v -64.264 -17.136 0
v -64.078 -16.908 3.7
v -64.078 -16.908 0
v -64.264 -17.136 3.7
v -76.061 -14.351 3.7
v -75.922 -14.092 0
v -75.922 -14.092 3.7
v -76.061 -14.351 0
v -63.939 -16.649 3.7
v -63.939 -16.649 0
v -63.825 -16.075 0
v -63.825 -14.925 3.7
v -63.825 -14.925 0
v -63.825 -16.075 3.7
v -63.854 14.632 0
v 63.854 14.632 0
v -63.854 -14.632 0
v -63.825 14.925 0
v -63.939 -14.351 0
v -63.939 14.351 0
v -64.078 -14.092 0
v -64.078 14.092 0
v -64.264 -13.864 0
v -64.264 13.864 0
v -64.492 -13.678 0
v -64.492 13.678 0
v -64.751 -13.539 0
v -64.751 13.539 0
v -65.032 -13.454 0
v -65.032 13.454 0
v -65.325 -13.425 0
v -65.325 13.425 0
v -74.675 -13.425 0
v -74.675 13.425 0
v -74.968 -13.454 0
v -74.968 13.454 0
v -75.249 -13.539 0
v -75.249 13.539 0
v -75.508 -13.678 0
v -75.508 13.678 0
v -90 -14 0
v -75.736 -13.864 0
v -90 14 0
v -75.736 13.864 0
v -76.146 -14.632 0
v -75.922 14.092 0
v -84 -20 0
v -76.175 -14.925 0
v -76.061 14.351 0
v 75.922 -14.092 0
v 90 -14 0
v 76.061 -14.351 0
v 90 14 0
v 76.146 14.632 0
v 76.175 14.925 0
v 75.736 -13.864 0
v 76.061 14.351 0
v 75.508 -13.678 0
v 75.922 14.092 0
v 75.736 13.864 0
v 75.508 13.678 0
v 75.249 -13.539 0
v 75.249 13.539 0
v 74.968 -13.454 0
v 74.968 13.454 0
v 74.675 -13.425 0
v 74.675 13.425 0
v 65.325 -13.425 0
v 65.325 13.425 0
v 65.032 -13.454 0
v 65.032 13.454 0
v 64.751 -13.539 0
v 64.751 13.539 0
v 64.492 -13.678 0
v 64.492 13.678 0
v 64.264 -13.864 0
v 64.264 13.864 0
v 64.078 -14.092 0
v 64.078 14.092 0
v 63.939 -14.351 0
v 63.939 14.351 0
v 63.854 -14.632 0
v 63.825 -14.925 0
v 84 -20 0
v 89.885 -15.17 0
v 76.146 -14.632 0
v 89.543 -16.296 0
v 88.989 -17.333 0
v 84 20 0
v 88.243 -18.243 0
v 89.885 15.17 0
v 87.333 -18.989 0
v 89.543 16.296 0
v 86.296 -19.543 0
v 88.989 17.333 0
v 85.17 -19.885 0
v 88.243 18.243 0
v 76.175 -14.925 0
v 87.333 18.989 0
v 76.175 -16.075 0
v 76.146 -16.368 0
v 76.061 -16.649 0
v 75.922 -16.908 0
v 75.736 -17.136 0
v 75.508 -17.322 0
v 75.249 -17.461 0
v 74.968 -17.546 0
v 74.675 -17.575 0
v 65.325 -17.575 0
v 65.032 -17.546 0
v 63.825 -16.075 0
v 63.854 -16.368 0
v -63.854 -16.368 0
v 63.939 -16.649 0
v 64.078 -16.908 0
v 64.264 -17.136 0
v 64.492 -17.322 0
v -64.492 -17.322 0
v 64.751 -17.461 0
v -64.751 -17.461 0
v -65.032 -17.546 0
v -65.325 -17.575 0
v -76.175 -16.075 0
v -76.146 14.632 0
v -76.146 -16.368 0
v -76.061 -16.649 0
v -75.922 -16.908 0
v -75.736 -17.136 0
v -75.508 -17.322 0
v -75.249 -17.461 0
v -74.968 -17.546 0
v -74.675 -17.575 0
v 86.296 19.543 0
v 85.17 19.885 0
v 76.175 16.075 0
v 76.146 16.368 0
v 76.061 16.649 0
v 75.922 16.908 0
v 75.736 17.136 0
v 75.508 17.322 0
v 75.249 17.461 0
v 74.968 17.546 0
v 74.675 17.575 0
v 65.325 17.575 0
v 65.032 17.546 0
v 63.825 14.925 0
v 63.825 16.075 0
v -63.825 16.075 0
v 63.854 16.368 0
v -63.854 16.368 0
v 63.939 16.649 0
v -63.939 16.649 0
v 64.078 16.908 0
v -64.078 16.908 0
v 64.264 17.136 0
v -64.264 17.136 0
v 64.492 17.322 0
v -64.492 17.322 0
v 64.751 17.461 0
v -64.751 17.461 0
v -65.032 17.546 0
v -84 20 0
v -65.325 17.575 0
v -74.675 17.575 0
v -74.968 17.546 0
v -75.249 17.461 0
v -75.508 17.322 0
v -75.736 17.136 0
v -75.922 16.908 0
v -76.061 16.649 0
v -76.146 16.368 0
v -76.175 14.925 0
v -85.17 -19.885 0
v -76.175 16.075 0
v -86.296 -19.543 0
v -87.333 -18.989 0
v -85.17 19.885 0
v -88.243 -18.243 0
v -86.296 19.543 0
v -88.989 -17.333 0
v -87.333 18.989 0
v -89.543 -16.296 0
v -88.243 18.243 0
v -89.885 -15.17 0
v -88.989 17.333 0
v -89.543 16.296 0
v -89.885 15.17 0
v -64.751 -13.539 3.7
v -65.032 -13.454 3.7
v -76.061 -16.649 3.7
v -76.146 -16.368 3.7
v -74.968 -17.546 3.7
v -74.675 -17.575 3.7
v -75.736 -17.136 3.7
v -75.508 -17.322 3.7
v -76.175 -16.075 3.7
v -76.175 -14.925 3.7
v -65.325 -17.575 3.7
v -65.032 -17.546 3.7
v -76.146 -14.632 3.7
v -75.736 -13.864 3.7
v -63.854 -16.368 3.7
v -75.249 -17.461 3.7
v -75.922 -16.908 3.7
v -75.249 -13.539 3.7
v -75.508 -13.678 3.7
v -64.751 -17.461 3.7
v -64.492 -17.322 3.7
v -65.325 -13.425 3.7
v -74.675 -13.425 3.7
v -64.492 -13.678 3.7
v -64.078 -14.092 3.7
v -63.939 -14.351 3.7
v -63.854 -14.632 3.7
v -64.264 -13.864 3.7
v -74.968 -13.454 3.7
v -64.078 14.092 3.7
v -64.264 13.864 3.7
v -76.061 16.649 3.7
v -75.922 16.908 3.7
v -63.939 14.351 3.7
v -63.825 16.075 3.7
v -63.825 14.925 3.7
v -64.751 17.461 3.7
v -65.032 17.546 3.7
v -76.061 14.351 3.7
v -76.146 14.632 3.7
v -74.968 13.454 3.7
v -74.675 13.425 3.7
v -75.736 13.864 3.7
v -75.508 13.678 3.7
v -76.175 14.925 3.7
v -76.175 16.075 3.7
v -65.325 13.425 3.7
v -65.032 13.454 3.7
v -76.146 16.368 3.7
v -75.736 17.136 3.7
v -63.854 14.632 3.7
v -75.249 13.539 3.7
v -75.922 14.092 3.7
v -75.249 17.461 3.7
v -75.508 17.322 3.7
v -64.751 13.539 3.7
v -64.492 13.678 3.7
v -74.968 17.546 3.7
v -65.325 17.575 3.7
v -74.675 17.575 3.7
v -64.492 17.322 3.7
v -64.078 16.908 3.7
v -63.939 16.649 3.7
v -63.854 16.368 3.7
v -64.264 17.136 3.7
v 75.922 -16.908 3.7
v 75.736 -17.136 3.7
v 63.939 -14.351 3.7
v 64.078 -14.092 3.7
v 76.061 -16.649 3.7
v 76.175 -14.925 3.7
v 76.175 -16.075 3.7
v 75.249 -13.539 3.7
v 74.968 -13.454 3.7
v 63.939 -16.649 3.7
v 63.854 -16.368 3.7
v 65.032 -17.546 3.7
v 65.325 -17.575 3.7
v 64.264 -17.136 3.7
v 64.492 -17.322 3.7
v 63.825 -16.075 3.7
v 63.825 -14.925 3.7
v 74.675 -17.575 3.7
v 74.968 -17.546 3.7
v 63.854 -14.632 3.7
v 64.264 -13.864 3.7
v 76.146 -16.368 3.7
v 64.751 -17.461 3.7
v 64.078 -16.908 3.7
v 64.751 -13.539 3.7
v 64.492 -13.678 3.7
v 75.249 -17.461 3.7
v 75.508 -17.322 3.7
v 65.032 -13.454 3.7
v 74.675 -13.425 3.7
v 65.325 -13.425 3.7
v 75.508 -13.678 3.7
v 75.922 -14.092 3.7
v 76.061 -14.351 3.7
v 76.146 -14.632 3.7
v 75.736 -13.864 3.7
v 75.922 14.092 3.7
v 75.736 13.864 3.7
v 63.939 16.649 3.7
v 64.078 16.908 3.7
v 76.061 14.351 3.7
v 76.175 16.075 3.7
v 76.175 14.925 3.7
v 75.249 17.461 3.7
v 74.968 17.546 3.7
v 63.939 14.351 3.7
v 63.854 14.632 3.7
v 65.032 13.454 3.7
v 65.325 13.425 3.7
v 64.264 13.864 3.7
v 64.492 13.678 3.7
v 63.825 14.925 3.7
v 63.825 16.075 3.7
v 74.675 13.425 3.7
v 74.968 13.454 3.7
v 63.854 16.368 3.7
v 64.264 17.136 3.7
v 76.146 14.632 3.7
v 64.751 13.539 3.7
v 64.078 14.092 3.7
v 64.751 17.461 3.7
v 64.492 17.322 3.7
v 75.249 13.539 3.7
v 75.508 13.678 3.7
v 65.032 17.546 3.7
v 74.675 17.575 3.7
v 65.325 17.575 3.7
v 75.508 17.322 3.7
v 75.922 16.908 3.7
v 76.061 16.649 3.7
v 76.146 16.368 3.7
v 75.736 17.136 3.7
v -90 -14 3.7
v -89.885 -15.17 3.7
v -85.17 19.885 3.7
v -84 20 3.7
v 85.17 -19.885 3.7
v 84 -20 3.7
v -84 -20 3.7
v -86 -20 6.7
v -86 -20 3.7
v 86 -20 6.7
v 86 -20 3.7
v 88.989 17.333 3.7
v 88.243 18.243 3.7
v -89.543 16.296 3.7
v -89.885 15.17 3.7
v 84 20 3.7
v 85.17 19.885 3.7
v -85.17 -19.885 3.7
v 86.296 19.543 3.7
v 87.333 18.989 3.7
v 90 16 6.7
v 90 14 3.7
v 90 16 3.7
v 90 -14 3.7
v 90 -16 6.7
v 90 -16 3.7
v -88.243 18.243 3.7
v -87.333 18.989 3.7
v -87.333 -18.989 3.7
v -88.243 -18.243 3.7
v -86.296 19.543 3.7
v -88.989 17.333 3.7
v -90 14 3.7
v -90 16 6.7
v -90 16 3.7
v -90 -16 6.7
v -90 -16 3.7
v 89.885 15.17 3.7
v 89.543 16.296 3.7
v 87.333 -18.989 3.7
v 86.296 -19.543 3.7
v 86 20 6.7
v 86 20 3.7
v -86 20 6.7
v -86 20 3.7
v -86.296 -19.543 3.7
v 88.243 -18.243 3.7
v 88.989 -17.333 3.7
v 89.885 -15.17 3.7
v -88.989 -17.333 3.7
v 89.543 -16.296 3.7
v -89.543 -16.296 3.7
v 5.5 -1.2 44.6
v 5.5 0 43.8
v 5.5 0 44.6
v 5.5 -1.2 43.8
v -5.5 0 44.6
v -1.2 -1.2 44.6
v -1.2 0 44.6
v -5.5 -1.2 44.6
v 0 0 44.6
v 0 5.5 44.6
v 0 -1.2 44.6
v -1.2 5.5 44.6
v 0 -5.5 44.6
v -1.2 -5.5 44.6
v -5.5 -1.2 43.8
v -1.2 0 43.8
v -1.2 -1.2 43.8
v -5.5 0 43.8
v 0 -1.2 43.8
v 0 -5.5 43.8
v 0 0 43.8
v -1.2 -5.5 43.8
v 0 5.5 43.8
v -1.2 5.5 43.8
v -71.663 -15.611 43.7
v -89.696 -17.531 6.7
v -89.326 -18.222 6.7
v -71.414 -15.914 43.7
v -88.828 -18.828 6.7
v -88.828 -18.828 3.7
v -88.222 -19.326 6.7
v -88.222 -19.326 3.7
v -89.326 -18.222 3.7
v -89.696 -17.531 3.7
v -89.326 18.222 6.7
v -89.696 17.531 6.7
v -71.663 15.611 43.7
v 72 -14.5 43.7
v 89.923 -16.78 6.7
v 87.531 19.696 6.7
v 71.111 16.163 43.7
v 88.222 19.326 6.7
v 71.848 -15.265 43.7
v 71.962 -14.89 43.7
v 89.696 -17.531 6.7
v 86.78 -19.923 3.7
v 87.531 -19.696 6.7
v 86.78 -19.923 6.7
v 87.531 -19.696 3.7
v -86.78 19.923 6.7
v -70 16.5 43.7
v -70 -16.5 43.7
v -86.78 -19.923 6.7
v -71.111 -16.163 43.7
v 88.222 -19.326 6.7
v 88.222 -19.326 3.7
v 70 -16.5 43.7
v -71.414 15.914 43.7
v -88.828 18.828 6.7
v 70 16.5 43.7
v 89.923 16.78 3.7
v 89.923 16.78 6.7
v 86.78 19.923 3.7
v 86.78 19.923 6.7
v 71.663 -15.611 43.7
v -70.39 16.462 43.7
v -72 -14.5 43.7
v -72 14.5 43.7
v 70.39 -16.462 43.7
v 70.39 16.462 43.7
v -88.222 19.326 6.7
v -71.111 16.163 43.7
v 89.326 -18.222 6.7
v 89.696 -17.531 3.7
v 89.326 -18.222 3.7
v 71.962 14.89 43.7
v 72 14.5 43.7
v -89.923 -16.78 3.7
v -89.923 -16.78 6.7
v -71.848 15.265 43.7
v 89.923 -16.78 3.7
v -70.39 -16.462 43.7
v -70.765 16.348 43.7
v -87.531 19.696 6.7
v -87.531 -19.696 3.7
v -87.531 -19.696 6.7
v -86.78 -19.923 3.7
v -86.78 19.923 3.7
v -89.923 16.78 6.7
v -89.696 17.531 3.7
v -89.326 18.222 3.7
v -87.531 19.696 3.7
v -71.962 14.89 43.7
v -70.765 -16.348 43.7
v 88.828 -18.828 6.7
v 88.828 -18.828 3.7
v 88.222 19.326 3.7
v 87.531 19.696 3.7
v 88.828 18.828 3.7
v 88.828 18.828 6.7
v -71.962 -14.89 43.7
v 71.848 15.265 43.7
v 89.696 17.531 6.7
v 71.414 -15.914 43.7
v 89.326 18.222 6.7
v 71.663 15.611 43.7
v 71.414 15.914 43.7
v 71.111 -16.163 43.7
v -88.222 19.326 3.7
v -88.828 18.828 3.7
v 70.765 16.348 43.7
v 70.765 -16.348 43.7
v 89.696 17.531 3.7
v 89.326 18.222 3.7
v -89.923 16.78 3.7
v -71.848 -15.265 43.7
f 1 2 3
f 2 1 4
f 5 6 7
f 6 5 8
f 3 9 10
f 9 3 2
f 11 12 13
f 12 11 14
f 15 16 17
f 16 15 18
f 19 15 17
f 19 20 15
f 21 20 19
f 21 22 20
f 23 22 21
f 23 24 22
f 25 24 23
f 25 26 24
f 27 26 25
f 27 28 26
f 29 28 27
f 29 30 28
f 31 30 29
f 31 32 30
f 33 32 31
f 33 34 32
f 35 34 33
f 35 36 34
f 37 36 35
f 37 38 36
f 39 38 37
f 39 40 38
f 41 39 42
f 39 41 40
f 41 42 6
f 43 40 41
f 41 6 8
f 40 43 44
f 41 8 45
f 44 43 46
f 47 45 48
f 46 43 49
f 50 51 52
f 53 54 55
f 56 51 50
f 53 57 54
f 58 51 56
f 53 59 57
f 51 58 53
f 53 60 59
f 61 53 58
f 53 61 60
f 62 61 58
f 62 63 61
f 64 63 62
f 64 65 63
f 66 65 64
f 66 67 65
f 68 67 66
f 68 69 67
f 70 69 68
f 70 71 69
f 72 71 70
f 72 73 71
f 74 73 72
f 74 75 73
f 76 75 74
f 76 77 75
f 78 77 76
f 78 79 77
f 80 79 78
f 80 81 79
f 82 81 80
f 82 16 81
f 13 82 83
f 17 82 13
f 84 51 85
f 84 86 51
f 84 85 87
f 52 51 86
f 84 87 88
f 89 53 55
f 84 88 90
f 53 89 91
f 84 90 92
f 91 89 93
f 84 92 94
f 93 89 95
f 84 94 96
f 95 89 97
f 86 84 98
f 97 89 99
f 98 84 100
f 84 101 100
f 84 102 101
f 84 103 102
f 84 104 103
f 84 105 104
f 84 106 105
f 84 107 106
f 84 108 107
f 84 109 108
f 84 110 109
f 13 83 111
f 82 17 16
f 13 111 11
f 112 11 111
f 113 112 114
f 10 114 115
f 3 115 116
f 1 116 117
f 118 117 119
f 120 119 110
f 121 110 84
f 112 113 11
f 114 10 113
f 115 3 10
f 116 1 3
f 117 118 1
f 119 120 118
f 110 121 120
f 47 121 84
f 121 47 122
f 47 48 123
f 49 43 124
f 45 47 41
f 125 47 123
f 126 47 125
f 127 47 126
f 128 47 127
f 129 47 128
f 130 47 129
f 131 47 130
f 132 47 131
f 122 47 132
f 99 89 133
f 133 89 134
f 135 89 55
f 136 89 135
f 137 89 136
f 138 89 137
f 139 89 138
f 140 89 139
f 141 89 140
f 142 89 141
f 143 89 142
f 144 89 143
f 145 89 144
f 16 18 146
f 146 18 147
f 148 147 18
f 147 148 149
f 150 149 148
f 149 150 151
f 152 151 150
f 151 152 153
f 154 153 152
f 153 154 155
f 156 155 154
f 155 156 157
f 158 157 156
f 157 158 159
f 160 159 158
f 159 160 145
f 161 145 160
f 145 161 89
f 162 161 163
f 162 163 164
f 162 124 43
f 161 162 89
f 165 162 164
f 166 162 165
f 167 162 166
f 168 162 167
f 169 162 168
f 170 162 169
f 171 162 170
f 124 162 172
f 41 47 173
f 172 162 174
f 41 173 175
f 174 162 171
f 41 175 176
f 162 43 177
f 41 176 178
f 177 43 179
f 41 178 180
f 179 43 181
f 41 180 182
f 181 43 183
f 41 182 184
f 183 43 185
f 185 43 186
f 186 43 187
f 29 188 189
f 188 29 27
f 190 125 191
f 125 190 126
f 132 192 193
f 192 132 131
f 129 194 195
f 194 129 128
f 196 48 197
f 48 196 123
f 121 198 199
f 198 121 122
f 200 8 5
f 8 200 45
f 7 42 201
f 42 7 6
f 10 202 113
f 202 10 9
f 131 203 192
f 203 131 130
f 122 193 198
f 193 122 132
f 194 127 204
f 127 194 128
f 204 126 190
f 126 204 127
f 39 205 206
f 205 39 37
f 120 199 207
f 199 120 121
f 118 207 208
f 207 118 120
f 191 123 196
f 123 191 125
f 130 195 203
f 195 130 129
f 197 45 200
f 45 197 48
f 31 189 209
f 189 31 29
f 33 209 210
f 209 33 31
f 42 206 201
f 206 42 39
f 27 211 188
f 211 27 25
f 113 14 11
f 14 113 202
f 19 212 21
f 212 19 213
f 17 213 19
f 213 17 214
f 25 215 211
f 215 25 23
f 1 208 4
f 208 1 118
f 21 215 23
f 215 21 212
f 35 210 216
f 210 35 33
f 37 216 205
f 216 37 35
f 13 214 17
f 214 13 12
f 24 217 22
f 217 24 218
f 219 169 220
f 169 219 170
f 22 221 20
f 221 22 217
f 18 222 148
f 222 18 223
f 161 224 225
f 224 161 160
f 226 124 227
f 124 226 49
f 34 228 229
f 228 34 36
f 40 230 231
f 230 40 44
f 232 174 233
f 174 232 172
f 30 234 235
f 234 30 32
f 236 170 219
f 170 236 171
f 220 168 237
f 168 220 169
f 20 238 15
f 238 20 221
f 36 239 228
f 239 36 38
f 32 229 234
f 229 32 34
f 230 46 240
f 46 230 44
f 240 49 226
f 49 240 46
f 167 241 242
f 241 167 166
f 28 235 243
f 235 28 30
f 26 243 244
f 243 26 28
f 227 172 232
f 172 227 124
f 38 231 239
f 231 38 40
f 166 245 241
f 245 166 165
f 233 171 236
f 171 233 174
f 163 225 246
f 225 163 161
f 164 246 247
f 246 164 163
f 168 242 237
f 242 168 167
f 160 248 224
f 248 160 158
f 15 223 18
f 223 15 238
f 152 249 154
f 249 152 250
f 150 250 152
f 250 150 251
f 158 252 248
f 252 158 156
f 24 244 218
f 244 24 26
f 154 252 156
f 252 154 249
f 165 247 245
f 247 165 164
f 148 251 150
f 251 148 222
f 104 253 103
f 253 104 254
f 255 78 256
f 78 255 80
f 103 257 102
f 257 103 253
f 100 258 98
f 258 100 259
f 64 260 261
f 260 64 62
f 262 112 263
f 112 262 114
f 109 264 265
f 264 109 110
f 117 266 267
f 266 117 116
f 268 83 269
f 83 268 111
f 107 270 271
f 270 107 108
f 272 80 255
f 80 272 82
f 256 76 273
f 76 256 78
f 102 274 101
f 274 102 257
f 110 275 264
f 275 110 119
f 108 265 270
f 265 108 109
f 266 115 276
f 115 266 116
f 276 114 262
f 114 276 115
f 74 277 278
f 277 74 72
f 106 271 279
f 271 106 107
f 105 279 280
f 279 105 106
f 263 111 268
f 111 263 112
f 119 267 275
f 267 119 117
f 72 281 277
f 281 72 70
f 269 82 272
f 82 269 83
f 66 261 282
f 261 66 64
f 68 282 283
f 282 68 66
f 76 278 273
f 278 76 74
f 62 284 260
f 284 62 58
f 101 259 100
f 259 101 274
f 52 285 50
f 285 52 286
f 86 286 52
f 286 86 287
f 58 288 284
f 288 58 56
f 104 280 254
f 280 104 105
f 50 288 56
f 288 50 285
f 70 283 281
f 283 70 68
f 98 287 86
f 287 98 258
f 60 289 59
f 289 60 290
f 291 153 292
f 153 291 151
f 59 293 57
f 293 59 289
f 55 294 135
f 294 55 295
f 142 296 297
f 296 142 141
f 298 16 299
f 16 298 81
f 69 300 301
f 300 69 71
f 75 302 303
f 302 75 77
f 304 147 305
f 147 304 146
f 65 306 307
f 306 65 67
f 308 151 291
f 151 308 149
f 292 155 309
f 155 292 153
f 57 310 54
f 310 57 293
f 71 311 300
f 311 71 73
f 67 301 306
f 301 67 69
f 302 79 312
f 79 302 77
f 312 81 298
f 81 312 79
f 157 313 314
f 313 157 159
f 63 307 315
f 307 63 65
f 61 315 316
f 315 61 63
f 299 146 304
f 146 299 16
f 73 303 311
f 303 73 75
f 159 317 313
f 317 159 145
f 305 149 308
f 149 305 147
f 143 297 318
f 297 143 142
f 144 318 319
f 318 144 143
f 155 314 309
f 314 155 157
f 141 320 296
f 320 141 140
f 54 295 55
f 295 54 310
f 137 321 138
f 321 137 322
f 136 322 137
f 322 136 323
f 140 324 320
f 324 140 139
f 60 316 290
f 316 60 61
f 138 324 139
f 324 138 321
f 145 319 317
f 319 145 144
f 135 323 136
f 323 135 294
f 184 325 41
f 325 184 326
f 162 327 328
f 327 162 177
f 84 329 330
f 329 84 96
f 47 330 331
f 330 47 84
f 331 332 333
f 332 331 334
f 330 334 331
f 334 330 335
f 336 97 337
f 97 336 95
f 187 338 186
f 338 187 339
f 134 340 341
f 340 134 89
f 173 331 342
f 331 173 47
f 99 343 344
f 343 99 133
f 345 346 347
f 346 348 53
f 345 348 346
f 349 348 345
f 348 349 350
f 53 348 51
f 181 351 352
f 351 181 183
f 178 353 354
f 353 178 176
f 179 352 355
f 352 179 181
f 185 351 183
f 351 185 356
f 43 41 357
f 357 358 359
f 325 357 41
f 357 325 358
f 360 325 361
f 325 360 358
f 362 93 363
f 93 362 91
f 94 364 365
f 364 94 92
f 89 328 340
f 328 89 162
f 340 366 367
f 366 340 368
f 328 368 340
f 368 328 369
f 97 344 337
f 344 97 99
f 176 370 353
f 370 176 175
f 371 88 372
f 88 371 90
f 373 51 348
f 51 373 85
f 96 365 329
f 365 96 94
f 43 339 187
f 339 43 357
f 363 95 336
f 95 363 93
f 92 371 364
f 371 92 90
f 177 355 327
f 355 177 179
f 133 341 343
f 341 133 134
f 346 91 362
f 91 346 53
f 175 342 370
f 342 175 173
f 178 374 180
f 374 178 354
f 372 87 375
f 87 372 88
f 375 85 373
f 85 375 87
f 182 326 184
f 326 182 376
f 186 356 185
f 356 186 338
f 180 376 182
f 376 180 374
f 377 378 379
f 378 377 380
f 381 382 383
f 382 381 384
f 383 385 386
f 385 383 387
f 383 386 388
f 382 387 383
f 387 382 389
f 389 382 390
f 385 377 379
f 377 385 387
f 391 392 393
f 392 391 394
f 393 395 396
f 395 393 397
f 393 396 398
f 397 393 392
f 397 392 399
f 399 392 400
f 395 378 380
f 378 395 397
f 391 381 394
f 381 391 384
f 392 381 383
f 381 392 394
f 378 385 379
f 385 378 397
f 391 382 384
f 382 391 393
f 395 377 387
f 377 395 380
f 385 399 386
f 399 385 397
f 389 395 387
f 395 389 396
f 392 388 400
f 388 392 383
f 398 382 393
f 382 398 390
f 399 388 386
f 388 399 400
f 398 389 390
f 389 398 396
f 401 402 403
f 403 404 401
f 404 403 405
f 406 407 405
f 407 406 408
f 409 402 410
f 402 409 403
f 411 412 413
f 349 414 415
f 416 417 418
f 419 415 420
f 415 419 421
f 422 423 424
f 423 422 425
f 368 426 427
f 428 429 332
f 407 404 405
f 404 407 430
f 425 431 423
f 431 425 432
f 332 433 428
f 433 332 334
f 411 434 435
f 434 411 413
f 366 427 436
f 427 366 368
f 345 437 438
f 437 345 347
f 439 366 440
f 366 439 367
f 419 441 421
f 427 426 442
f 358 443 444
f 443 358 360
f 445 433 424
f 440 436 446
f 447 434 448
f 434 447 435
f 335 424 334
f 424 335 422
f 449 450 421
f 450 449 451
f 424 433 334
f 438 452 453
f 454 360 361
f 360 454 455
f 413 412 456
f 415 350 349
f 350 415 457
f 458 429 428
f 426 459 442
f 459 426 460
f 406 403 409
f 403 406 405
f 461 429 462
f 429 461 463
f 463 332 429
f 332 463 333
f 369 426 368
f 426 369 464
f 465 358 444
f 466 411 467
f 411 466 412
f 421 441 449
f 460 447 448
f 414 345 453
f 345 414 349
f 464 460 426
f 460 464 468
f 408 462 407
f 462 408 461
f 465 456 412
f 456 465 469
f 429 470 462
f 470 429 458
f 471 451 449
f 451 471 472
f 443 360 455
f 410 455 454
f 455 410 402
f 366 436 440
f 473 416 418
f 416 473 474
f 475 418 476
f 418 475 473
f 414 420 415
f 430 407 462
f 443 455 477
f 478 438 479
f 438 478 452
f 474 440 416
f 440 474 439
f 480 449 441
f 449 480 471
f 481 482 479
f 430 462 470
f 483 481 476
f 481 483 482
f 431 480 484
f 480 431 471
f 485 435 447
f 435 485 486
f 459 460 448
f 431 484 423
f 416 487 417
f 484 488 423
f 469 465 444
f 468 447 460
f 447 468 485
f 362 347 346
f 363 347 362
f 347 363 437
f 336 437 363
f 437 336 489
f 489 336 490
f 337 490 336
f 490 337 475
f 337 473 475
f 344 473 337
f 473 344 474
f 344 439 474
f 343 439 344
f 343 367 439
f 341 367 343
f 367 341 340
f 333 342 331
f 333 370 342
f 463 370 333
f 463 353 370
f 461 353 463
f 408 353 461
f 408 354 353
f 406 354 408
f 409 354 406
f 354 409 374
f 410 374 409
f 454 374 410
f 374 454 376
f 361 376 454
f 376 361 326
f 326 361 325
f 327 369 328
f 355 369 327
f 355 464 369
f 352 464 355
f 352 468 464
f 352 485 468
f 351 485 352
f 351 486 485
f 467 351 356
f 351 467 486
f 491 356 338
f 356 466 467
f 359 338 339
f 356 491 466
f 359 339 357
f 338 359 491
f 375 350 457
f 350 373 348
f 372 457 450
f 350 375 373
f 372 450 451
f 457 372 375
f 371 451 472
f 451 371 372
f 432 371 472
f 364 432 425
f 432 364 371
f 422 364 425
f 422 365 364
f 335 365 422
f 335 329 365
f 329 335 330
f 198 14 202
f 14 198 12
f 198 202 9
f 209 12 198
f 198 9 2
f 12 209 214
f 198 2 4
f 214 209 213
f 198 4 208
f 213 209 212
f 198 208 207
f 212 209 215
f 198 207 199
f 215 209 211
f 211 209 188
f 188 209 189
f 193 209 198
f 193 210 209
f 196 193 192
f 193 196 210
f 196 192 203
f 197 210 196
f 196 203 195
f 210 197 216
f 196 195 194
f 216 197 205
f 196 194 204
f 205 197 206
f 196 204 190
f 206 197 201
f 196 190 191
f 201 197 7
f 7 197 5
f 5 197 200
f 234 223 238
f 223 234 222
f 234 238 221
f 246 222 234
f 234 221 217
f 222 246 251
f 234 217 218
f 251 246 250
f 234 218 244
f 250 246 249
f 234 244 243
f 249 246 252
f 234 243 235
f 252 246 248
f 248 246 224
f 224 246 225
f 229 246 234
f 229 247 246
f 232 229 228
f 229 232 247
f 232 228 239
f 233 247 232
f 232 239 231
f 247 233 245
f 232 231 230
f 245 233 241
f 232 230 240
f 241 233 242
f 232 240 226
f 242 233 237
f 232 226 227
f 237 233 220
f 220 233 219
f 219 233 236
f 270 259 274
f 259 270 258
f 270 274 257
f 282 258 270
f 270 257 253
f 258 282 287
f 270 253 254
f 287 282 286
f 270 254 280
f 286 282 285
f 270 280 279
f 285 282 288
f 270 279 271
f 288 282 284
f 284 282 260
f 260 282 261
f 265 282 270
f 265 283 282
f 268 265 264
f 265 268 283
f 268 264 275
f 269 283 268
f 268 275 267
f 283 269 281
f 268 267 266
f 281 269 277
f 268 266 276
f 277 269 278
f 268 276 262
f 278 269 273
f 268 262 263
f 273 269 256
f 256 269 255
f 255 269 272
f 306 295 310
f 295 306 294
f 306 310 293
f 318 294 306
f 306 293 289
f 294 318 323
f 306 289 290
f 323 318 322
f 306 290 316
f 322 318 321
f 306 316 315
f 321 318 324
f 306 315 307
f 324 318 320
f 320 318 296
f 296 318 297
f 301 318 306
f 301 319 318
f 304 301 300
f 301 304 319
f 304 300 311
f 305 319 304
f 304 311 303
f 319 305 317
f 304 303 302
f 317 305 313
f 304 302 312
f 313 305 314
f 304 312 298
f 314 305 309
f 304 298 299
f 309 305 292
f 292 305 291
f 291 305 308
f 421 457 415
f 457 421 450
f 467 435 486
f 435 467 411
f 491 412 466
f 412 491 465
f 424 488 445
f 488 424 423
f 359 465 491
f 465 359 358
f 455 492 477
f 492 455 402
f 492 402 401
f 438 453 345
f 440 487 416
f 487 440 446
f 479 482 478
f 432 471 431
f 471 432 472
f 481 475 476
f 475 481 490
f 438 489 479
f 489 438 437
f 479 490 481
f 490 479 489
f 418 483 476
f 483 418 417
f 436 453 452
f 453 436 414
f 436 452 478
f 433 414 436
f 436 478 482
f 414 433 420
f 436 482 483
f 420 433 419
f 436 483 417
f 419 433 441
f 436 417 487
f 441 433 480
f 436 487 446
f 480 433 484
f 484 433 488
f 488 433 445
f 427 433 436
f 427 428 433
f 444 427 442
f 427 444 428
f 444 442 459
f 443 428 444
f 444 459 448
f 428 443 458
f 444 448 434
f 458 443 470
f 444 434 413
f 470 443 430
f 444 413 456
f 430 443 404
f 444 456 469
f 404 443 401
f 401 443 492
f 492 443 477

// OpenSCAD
include <../s1_parameters.scad>

build_part = "full";

module overnight_pod_full() {
  union() {
    difference() {
      module_interface_base(cutout_height = 14);
    }
    translate([0, 0, s1_module_interface_height - 0.3])
      aerodynamic_pod_shell(s1_module_length, s1_module_width, s1_overnight_pod_height, nose = 18, roof_inset = 7, radius = 4);
    for (x = [-52, 52])
      translate([s1_scaled_feature(x), s1_module_width / 2 - 5.2, s1_scaled_pod_z(25, s1_overnight_pod_height, 40)])
        rounded_box([s1_scaled_feature_size(36), 1.3, s1_scaled_pod_size(10, s1_overnight_pod_height, 40)], 1.4);
    for (x = [-52, 52])
      translate([s1_scaled_feature(x), -s1_module_width / 2 + 5.2, s1_scaled_pod_z(25, s1_overnight_pod_height, 40)])
        rounded_box([s1_scaled_feature_size(36), 1.3, s1_scaled_pod_size(10, s1_overnight_pod_height, 40)], 1.4);
    translate([0, s1_module_width / 2 - 5.2, s1_scaled_pod_z(17, s1_overnight_pod_height, 40)])
      rounded_box([s1_scaled_feature_size(24), 1.3, s1_scaled_pod_size(12, s1_overnight_pod_height, 40)], 1.4);
    translate([0, -s1_module_width / 2 + 5.2, s1_scaled_pod_z(17, s1_overnight_pod_height, 40)])
      rounded_box([s1_scaled_feature_size(24), 1.3, s1_scaled_pod_size(12, s1_overnight_pod_height, 40)], 1.4);
    cg_marker(s1_module_interface_height + s1_overnight_pod_height + 0.2, 11);
  }
}

module overnight_pod_part() {
  if (build_part == "front")
    difference() {
      render(convexity = 10) intersection() { overnight_pod_full(); split_front_clip(s1_module_length, s1_module_width + 30, s1_module_interface_height + s1_overnight_pod_height + 70); }
      split_alignment_sockets("front", z = 0.5);
    }
  else if (build_part == "rear")
    difference() {
      render(convexity = 10) intersection() { overnight_pod_full(); split_rear_clip(s1_module_length, s1_module_width + 30, s1_module_interface_height + s1_overnight_pod_height + 70); }
      split_alignment_sockets("rear", z = 0.5);
    }
  else
    overnight_pod_full();
}

overnight_pod_part();
